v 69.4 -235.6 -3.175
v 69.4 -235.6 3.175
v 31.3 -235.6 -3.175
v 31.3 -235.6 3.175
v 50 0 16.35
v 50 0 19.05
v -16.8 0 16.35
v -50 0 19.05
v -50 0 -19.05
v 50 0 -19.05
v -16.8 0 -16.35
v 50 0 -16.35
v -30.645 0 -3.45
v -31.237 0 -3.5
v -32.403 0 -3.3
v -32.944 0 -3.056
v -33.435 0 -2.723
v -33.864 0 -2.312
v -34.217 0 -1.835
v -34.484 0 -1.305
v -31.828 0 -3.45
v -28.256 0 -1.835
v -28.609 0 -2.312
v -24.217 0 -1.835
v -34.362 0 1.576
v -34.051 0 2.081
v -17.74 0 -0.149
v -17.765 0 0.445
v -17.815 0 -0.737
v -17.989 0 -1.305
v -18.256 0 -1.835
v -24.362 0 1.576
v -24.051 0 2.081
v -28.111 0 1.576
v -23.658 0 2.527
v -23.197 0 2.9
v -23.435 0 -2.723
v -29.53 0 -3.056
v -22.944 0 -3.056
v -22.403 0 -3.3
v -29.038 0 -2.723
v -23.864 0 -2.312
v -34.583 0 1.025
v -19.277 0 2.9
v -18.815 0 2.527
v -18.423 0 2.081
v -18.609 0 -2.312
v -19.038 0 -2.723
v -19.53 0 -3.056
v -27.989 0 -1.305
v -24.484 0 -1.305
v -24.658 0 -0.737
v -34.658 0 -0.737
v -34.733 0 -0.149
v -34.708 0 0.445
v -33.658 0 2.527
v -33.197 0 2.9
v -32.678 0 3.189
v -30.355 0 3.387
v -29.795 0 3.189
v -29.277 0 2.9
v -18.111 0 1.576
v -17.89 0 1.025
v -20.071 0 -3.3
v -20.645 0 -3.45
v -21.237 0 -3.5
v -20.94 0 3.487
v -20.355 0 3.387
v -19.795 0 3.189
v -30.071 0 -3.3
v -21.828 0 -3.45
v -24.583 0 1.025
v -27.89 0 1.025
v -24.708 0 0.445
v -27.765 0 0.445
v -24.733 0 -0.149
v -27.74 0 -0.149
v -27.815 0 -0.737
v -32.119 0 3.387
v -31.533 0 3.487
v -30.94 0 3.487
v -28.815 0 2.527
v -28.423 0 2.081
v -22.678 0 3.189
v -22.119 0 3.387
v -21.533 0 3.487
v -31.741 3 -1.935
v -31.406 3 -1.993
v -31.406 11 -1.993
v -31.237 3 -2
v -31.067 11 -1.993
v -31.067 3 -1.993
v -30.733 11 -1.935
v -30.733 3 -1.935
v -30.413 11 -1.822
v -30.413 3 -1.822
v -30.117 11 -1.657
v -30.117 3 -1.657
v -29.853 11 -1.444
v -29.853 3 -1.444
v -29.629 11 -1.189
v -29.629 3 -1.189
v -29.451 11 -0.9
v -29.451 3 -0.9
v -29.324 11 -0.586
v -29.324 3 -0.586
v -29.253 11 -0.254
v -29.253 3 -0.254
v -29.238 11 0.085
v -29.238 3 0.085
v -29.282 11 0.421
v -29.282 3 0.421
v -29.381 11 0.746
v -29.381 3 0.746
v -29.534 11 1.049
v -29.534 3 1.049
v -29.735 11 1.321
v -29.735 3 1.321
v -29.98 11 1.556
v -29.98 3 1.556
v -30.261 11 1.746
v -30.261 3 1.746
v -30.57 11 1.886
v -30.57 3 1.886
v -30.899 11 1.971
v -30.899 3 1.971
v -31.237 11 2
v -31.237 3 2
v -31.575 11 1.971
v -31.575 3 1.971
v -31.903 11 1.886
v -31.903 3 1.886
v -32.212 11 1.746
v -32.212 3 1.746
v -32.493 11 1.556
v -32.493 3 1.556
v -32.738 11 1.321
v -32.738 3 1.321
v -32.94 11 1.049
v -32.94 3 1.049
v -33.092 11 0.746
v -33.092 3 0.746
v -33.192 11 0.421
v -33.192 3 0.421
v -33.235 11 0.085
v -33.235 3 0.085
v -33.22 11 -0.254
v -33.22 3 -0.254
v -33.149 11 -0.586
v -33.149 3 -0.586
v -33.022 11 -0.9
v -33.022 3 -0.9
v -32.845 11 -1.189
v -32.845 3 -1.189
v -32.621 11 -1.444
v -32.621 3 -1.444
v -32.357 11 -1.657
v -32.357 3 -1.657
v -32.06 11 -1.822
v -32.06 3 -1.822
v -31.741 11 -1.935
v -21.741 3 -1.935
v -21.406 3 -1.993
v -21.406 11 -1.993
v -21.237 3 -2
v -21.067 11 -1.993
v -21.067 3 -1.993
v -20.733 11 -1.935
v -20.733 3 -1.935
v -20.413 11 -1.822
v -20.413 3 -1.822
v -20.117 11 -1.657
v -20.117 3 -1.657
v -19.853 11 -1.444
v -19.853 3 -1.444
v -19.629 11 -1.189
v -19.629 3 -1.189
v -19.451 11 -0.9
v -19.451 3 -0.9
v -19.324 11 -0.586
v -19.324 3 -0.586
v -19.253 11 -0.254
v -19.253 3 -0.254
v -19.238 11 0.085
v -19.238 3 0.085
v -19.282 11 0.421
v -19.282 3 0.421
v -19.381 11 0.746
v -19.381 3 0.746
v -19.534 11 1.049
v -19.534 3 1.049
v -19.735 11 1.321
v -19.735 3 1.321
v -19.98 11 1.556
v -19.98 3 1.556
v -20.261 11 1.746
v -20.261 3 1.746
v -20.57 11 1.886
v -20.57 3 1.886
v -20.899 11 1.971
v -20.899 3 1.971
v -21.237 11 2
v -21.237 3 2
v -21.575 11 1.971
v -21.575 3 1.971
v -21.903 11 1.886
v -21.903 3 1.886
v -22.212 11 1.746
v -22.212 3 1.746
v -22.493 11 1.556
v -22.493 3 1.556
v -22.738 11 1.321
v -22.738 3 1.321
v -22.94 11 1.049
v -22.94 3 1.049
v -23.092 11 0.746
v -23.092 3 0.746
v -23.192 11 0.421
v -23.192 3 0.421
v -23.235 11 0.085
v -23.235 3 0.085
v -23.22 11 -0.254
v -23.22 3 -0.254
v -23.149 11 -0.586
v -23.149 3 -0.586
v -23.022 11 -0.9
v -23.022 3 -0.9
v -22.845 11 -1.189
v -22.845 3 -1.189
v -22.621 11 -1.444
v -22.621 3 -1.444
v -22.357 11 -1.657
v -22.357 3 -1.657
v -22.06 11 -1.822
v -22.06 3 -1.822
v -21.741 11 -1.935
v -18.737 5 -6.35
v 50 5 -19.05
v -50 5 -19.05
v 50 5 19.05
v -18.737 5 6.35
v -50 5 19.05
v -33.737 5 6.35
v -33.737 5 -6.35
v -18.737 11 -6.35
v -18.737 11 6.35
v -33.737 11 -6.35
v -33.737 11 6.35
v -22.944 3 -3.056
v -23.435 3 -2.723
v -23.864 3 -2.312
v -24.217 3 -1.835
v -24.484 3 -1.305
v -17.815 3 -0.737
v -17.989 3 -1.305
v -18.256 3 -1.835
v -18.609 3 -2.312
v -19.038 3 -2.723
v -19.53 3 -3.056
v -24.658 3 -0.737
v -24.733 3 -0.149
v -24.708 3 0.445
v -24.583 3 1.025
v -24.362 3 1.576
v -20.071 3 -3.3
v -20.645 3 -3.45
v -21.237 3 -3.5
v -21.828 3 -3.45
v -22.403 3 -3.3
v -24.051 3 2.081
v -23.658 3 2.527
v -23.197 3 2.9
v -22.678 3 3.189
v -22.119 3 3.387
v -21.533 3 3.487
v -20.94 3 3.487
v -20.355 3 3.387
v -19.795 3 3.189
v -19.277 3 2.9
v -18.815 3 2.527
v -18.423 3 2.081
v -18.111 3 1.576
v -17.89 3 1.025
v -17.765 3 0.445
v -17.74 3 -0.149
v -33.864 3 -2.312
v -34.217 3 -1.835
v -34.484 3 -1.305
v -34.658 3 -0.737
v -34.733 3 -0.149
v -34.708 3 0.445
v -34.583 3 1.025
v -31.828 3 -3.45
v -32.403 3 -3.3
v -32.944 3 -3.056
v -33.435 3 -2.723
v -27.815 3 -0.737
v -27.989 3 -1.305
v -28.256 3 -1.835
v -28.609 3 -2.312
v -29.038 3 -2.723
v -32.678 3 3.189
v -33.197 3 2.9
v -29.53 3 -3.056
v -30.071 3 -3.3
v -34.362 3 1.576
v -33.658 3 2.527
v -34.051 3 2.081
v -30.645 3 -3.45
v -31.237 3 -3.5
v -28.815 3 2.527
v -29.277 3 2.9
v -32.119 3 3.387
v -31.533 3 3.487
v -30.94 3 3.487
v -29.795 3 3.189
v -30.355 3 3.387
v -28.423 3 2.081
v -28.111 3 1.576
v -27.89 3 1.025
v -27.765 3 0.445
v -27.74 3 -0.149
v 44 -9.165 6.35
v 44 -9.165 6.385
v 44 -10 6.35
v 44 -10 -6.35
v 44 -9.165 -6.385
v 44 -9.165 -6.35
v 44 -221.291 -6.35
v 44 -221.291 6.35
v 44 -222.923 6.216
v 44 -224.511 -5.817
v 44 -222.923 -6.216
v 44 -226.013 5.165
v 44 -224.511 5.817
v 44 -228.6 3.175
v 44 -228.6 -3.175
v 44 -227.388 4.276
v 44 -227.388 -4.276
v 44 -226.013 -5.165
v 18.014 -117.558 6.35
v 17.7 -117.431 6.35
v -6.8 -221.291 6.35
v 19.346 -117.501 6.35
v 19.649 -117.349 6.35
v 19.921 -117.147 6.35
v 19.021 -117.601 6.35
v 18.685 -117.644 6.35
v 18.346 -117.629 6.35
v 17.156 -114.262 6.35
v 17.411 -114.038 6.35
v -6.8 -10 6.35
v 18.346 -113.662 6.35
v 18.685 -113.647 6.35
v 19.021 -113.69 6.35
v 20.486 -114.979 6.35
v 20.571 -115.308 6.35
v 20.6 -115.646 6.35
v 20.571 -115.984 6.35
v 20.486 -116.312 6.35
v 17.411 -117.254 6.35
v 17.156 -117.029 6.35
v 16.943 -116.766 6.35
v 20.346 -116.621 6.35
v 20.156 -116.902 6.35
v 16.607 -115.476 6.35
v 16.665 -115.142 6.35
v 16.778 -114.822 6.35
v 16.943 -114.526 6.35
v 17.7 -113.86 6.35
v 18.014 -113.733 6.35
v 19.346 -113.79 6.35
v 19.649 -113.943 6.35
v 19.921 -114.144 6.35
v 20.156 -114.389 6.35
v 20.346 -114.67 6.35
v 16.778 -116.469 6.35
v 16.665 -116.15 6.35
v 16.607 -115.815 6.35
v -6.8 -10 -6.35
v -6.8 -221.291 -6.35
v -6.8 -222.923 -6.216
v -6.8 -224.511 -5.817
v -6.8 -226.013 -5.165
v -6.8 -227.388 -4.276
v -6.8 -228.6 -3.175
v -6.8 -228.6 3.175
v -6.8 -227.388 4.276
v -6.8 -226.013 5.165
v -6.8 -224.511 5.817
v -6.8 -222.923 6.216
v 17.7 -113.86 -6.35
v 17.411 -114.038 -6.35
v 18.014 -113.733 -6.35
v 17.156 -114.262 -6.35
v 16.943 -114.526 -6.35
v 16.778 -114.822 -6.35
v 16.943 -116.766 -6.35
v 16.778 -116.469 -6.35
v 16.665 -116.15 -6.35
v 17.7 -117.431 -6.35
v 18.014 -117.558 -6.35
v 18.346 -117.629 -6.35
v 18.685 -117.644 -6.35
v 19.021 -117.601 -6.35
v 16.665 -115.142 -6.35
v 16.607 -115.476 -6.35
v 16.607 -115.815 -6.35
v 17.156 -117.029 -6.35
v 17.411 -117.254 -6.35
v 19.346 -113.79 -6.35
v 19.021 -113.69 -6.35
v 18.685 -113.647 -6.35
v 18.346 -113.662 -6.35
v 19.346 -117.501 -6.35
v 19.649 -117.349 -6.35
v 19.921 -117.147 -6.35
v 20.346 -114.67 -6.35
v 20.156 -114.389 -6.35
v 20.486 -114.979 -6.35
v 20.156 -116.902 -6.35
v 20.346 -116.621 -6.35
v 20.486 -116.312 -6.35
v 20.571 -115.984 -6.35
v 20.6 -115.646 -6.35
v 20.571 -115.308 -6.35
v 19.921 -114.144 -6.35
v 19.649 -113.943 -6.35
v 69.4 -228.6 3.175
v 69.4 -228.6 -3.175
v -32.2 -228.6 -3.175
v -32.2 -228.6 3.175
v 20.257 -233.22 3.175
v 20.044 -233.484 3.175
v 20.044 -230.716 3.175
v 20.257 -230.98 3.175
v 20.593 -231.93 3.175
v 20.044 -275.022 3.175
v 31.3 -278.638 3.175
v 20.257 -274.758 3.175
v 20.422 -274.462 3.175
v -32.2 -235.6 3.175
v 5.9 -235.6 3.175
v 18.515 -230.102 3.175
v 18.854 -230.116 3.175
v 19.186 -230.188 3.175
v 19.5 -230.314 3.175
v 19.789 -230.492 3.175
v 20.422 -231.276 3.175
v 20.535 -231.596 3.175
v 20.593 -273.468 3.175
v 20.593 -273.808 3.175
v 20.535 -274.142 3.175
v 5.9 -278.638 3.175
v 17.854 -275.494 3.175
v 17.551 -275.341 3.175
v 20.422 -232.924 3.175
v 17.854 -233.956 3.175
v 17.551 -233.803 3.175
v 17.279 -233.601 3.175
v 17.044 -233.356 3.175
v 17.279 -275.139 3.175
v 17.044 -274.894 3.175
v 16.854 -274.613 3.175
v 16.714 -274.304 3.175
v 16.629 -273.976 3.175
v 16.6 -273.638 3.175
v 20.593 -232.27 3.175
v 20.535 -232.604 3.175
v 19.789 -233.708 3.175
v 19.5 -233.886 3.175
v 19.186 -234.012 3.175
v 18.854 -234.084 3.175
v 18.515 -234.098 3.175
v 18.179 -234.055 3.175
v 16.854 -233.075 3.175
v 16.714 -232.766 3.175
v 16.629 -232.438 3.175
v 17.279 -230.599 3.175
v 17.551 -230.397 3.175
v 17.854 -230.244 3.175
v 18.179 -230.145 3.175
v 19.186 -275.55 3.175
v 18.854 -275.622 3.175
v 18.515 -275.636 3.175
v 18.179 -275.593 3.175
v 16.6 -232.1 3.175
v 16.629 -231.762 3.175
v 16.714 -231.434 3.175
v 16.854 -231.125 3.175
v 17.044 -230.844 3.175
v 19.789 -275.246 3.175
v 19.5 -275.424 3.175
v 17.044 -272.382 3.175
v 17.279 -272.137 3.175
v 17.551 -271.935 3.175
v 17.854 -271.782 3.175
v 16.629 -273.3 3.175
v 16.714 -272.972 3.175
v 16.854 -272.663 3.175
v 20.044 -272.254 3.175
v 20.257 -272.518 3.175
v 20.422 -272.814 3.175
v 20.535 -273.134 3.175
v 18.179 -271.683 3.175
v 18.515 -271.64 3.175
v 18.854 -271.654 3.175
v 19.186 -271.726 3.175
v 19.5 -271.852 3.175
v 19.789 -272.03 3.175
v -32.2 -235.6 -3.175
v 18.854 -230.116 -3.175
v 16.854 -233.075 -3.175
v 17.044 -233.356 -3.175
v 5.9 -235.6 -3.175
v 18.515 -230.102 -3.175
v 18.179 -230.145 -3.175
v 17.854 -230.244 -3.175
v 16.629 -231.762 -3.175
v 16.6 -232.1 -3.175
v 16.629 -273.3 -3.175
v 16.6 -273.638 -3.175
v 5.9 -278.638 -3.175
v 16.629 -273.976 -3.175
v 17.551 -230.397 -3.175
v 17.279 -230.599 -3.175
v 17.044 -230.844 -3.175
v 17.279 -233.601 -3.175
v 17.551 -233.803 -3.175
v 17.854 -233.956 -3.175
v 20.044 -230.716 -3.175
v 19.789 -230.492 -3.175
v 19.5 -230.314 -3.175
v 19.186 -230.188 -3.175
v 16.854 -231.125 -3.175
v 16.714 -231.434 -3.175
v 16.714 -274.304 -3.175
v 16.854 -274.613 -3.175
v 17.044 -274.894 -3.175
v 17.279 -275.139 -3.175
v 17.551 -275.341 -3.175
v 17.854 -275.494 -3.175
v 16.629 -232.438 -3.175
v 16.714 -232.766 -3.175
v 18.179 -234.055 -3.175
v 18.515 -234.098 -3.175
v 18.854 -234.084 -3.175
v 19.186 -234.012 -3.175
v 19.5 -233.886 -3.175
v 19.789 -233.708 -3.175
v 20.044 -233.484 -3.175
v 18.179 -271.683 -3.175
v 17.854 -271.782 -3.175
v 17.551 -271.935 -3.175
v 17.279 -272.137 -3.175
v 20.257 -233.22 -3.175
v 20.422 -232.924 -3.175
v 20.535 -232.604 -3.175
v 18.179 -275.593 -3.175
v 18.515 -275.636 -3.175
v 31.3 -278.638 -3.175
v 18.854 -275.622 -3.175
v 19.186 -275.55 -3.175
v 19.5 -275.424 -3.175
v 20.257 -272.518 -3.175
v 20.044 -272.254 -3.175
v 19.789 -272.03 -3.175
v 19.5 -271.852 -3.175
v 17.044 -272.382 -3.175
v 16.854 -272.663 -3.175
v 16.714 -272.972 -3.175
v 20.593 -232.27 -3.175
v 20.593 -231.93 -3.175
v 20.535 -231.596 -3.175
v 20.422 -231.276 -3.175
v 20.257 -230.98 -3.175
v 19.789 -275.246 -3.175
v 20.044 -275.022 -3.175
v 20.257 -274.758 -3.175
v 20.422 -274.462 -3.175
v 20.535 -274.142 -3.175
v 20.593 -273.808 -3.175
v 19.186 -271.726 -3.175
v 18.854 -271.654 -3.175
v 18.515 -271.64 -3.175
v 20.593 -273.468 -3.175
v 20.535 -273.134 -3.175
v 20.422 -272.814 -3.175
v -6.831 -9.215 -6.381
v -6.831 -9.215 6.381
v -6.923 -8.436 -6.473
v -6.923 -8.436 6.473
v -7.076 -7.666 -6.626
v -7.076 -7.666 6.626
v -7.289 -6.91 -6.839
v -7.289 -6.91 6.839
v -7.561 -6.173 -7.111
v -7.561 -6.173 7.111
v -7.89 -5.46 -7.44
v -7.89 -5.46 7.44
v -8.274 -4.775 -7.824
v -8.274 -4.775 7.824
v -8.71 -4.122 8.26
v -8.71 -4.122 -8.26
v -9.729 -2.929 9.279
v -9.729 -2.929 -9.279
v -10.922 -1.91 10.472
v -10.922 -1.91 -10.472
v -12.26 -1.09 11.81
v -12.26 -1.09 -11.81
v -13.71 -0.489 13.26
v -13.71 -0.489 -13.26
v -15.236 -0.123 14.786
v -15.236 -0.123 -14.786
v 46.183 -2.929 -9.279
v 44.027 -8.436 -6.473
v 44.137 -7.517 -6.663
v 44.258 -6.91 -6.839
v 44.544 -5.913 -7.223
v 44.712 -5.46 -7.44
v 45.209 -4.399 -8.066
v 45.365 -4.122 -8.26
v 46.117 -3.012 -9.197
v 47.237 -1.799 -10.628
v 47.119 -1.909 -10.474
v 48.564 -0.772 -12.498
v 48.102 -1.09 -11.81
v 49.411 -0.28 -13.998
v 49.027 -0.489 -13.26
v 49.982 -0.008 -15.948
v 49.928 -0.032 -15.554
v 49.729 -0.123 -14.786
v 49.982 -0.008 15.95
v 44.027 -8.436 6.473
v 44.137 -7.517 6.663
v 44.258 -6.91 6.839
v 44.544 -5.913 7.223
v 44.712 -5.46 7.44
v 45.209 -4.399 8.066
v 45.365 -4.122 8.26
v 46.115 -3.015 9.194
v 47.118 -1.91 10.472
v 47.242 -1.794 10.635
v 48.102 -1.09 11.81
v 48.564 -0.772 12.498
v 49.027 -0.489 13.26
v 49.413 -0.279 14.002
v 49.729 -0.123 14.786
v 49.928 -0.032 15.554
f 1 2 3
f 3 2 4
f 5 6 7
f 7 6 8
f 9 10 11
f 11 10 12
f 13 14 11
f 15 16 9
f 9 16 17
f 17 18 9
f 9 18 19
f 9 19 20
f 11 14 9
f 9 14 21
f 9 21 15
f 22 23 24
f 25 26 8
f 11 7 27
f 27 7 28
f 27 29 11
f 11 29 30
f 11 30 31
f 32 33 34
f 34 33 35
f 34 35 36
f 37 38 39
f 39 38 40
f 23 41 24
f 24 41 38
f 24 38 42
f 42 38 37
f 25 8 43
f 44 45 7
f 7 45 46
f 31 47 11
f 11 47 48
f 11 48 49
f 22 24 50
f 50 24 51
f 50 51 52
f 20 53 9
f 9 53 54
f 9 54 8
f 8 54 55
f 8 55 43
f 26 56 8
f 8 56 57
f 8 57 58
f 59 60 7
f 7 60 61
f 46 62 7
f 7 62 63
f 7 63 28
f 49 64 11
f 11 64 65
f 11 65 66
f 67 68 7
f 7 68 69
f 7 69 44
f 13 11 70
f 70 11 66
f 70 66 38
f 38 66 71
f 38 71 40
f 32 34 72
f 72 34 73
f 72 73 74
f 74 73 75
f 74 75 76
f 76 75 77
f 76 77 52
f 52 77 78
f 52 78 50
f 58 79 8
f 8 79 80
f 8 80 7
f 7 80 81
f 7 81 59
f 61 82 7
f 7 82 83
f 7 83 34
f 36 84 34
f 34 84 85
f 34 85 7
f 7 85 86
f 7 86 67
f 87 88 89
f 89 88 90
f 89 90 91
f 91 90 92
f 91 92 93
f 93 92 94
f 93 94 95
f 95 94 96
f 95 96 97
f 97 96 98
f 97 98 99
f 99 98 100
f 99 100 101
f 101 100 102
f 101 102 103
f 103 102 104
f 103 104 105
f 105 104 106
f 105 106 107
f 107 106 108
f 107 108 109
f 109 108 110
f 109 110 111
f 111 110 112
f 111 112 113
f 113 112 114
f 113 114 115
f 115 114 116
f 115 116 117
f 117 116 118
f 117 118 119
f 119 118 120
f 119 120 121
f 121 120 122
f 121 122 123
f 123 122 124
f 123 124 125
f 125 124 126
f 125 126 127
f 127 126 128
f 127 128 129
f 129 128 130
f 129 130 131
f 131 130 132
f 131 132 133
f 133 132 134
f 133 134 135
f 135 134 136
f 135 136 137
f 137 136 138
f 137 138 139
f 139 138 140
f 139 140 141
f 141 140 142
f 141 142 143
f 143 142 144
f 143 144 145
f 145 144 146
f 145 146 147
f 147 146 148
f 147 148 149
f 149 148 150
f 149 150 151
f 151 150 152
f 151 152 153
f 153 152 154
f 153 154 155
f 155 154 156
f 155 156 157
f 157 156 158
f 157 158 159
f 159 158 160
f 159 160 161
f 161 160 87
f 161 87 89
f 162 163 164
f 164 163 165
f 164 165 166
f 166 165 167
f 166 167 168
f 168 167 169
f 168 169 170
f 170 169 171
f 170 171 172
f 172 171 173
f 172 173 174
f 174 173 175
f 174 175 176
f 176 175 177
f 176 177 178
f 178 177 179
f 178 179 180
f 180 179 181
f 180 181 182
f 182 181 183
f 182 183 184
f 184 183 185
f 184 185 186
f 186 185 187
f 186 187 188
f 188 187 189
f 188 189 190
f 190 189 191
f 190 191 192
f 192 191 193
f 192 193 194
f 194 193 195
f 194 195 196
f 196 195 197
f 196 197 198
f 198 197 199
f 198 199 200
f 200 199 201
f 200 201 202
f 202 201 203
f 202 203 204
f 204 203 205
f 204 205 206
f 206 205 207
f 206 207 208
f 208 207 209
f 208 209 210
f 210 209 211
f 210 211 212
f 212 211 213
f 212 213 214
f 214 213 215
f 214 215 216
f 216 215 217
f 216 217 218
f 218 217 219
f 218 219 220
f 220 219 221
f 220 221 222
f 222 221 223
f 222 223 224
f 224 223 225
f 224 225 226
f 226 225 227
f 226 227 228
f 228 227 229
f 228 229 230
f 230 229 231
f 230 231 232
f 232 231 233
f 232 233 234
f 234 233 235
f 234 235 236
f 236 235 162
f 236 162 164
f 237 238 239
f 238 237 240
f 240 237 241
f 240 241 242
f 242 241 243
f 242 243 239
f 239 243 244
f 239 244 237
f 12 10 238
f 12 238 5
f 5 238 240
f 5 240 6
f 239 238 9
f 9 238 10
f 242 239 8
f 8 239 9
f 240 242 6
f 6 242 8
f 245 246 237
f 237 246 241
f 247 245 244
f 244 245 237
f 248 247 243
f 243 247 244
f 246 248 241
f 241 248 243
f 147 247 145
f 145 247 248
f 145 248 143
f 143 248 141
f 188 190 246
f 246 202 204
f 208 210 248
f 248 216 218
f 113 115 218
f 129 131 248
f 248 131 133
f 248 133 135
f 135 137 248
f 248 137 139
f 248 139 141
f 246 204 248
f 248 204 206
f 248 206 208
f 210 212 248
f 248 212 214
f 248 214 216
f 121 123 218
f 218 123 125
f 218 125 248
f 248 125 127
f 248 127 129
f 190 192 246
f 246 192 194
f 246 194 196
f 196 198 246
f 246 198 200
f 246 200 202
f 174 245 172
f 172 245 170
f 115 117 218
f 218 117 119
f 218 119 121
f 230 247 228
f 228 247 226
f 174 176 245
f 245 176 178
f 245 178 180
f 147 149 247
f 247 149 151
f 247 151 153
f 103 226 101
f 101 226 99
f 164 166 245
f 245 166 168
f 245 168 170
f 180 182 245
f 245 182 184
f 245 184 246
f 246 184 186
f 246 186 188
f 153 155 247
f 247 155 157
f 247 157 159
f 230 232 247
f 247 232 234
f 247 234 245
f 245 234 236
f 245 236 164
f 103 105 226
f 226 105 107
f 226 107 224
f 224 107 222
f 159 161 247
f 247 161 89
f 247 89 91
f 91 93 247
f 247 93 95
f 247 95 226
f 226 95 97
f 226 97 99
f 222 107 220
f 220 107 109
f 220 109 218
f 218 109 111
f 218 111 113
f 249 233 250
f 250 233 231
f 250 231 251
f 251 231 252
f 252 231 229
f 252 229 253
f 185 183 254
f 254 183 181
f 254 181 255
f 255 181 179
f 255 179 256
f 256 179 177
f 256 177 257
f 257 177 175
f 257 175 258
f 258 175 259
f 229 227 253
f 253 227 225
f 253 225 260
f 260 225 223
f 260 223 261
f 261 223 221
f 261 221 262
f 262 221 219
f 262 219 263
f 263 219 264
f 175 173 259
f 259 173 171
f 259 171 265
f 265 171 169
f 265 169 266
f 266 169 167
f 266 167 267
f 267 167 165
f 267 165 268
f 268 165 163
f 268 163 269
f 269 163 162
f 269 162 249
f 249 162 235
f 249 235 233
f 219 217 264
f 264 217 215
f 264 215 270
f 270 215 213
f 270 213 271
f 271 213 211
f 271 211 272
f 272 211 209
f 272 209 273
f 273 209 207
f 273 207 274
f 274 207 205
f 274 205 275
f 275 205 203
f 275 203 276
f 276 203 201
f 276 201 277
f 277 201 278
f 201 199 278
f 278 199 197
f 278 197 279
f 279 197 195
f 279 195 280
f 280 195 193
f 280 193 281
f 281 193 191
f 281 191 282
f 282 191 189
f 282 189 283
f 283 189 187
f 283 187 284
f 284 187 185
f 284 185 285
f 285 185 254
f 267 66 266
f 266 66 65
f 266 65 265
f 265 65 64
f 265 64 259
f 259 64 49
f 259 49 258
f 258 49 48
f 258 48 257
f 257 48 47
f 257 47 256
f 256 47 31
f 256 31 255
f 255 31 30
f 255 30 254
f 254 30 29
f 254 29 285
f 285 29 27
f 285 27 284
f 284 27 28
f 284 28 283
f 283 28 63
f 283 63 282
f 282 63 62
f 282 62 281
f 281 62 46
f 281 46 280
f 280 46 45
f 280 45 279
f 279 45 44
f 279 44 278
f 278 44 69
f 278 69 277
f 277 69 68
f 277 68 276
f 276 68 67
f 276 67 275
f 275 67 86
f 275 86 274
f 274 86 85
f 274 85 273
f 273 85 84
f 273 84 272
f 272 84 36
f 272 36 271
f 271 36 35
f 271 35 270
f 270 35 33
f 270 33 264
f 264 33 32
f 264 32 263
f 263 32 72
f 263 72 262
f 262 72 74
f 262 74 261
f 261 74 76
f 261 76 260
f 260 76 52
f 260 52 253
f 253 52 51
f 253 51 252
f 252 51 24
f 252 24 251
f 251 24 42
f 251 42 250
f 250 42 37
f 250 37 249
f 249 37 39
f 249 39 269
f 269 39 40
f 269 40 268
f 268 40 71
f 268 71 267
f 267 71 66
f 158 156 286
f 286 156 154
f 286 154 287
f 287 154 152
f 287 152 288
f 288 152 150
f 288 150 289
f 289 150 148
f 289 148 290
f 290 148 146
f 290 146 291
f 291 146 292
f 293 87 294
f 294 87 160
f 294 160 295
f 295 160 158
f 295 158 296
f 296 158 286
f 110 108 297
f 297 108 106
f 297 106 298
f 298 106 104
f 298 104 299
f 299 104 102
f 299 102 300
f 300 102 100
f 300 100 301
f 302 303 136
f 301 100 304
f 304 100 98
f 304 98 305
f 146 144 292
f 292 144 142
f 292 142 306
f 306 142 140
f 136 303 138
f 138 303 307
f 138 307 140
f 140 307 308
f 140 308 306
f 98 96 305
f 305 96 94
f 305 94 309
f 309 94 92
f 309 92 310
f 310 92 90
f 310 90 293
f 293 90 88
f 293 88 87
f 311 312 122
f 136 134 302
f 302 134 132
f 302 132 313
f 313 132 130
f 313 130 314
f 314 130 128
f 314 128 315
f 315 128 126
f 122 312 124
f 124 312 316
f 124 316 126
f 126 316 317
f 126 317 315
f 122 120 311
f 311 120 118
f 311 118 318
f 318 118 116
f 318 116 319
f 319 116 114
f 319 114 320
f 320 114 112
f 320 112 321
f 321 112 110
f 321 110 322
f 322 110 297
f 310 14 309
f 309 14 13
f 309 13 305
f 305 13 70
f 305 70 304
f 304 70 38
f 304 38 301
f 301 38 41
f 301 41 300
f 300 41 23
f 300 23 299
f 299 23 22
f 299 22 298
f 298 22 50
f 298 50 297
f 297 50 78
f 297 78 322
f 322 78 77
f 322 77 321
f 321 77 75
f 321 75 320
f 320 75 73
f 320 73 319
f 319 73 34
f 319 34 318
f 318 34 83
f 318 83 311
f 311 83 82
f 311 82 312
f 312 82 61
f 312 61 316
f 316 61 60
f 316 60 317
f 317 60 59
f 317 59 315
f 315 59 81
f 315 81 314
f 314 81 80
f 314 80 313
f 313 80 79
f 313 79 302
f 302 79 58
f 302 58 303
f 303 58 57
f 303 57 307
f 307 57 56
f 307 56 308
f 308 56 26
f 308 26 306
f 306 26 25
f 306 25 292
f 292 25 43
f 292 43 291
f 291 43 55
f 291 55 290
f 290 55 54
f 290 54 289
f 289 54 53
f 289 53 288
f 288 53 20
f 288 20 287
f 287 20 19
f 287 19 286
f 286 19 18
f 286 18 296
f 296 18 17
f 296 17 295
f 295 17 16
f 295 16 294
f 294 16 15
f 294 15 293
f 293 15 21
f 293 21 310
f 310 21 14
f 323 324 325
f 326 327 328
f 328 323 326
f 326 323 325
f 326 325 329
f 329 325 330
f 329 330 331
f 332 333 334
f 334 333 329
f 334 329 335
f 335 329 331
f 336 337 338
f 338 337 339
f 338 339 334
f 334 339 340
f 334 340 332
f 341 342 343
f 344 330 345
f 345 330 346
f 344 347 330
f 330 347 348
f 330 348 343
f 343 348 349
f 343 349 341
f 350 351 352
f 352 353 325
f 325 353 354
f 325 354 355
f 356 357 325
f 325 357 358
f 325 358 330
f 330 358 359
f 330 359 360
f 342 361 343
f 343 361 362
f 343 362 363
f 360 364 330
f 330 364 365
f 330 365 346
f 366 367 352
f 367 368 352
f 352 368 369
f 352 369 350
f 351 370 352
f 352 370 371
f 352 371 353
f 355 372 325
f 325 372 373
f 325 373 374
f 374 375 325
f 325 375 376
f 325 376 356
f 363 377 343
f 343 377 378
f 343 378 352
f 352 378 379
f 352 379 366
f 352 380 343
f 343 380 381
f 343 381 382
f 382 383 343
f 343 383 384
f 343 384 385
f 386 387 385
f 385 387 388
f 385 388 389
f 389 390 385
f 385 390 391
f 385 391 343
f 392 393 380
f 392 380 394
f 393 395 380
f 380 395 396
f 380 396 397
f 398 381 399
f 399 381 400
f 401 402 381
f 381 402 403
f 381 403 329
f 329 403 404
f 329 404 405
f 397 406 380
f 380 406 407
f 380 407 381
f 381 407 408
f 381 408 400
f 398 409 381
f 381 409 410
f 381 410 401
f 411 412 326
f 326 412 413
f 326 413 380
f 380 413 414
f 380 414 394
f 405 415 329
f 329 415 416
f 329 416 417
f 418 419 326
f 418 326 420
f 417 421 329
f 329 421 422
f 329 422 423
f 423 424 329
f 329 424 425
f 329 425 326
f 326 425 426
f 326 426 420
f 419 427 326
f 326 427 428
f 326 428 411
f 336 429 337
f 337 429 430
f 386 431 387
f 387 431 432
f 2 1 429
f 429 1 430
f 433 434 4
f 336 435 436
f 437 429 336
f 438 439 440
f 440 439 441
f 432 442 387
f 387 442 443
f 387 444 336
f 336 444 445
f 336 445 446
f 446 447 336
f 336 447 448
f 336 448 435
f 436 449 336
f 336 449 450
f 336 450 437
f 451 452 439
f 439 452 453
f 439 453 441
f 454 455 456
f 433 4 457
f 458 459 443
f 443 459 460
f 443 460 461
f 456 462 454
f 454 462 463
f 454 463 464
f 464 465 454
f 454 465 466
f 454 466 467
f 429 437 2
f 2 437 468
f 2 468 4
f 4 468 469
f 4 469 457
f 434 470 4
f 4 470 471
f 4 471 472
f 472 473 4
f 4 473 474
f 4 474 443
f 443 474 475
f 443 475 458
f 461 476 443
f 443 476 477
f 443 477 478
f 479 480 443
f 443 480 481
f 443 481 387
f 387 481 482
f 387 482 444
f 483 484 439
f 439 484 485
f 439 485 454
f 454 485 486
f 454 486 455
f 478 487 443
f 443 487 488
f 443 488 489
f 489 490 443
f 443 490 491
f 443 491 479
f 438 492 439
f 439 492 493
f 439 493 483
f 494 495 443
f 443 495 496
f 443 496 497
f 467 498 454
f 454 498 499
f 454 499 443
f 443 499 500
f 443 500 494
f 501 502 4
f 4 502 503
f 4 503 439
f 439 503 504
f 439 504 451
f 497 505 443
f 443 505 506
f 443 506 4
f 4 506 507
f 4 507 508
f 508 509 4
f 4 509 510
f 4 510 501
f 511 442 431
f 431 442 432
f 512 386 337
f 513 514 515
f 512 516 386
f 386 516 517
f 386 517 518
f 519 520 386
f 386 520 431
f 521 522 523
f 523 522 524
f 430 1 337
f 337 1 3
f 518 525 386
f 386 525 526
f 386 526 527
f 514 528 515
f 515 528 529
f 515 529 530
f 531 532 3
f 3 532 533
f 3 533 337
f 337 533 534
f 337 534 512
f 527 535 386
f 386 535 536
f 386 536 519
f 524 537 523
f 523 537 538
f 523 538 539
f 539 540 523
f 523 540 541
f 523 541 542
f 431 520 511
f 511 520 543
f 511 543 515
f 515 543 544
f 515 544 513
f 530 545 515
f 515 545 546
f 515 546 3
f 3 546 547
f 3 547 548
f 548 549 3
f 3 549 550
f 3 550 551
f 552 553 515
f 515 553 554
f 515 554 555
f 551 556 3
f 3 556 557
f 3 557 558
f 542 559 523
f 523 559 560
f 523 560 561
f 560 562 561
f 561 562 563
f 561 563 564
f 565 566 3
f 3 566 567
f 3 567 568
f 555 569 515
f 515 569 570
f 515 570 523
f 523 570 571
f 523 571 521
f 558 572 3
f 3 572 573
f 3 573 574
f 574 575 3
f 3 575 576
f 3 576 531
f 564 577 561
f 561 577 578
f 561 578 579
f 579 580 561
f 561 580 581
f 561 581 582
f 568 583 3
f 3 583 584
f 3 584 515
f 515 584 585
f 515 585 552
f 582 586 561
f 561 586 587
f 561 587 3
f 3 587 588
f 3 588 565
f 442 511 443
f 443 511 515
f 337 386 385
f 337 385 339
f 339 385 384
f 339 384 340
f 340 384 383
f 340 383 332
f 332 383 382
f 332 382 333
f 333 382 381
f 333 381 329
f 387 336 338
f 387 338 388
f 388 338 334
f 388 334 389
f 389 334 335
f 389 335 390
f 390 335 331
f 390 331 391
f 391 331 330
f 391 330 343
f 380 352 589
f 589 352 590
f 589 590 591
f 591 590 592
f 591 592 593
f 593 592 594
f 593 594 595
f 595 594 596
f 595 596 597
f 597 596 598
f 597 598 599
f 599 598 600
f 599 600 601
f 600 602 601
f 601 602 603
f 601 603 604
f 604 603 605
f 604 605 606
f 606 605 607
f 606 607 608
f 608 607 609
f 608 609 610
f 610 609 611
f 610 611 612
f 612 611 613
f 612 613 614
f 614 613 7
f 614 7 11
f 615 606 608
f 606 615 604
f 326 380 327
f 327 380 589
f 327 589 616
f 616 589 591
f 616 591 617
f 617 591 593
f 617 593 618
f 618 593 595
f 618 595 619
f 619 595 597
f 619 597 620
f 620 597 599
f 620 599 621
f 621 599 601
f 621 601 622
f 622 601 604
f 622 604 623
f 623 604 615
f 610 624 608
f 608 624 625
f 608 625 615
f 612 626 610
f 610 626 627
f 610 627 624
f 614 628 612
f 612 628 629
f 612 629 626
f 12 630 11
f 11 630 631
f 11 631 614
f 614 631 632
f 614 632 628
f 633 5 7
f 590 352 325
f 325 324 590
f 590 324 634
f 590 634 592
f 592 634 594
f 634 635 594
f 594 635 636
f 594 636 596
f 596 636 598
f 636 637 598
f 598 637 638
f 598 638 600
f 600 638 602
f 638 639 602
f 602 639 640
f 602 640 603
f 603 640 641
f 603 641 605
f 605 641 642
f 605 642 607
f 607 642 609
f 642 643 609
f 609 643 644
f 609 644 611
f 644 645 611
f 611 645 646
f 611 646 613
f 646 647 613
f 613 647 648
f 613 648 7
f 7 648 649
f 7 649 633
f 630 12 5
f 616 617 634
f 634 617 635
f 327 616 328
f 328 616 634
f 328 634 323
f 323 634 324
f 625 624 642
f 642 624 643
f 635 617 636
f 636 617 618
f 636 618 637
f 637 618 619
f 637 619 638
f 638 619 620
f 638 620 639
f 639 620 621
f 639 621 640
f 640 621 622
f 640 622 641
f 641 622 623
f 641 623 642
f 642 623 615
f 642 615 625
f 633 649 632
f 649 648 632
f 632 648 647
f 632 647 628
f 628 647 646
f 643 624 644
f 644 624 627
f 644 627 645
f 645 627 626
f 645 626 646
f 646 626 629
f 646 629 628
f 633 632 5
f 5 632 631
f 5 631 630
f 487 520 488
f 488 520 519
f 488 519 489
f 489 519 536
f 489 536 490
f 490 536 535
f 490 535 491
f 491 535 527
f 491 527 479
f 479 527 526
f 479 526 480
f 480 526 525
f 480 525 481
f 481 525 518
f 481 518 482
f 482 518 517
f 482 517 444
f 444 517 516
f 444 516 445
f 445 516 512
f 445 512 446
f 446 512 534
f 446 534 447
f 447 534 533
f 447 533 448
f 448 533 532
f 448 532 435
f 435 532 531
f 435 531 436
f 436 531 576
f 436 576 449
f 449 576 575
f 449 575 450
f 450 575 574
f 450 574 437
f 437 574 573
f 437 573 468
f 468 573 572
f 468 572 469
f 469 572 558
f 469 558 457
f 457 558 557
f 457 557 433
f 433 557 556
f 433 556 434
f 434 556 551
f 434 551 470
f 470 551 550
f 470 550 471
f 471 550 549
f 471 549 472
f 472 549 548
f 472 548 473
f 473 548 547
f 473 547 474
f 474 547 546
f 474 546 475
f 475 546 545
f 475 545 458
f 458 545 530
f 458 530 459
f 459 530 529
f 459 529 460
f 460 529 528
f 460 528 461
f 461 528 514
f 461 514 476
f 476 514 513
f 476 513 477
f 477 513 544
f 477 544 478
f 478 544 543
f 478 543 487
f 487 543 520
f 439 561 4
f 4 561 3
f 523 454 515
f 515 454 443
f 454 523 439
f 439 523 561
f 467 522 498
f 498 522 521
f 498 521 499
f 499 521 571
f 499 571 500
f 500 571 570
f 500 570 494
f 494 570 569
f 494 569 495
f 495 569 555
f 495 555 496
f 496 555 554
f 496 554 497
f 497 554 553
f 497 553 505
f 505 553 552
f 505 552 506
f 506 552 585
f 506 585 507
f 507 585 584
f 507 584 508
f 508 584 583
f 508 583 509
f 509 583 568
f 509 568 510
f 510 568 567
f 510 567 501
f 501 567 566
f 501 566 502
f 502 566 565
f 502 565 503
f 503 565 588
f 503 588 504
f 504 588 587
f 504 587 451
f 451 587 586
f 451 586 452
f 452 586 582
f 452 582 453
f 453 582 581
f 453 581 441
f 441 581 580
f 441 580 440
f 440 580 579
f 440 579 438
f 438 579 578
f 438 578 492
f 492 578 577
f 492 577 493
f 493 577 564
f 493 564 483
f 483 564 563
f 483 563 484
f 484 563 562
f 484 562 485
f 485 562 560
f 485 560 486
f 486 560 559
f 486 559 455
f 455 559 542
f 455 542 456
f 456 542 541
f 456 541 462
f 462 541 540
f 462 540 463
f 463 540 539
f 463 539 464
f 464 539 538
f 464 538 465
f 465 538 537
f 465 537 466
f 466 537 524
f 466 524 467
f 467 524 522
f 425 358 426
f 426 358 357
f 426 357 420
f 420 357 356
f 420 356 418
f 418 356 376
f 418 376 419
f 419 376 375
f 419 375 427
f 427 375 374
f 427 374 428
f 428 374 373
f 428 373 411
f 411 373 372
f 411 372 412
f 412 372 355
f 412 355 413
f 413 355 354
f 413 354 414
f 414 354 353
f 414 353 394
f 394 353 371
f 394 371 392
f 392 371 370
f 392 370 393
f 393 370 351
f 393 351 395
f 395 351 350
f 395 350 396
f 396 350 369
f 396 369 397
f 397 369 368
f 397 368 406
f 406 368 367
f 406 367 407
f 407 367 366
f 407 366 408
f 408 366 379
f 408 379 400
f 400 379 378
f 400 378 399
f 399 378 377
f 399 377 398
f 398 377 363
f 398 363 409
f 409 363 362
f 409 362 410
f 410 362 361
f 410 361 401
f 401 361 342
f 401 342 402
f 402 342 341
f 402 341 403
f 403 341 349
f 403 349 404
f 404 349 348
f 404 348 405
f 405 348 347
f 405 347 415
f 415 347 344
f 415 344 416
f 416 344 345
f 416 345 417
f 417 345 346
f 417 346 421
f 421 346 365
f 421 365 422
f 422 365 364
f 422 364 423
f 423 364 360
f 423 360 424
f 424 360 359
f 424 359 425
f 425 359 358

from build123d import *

# Parameters (mm, degrees)
BOSS_EXTRUDE1_DEPTH         = 5
BOSS_EXTRUDE2_DEPTH         = 6
TAP_DRILL_FOR_M4X0_7_TAP1_D = 3.3
SKETCH3_R                   = 2.000000000000003
CUT_EXTRUDE1_DEPTH          = 55.62510869554404
SKETCH12_R                  = 3.5
CUT_EXTRUDE2_DEPTH          = 3
BOSS_EXTRUDE3_DEPTH         = 228.6
SKETCH14_W                  = 101.6
SKETCH14_H                  = 6.35
BOSS_EXTRUDE4_DEPTH         = 7
FILLET1_R                   = 10
FILLET2_R                   = 10
FILLET3_R                   = 10
SKETCH15_R                  = 2.0000000000000067
CUT_EXTRUDE3_DEPTH          = 247.61238943937914
SKETCH16_W                  = 25.4
SKETCH16_H                  = 6.35
BOSS_EXTRUDE5_DEPTH         = 43.038
SKETCH17_R                  = 2.0000000000000036
CUT_EXTRUDE4_DEPTH          = 289.00945413128363
SKETCH18_R                  = 2.0000000000000036
CUT_EXTRUDE5_DEPTH          = 289.2718422669824


with BuildPart() as part:
    # Sketch1 → Boss-Extrude1 (new body)
    with BuildSketch(Plane(origin=(0, 0, 0), x_dir=(1, 0, 0), z_dir=(0, 1, 0))):
        Polygon((-49.99999999999999, 19.050000000000004), (50.00000000000001, 19.050000000000004), (50.000000000000014, -19.049999999999997), (-49.99999999999999, -19.049999999999997), align=None)
    extrude(amount=BOSS_EXTRUDE1_DEPTH)

    # Sketch2 → Boss-Extrude2 (add)
    with BuildSketch(Plane(origin=(0, 5, 0), x_dir=(1, 0, 0), z_dir=(0, 1, 0))):
        Polygon((-33.73664574389268, 6.349999999999993), (-18.736645743892684, 6.349999999999995), (-18.73664574389268, -6.350000000000003), (-33.73664574389268, -6.350000000000006), align=None)
    extrude(amount=BOSS_EXTRUDE2_DEPTH)

    # Tap Drill for M4x0.7 Tap1 (through all)
    with Locations(Plane(origin=(0, 11, 0), x_dir=(1, 0, 0), z_dir=(0, 1, 0))):
        with Locations((-31.236645744, 0), (-21.236645744, 0)):
            Hole(TAP_DRILL_FOR_M4X0_7_TAP1_D / 2)

    # Sketch3 → Cut-Extrude1 (cut, through all)
    with BuildSketch(Plane(origin=(0, 11, 0), x_dir=(1, 0, 0), z_dir=(0, 1, 0))):
        with Locations(Location((-21.236645743892684, 0, 0), (0, 0, 270))):
            Circle(SKETCH3_R)
        with Locations(Location((-31.23664574389268, 0, 0), (0, 0, 270))):
            Circle(SKETCH3_R)
    extrude(amount=-CUT_EXTRUDE1_DEPTH, mode=Mode.SUBTRACT)

    # Sketch12 → Cut-Extrude2 (cut)
    with BuildSketch(Plane.XZ):
        with Locations(Location((-31.23664574389268, 0, 0), (0, 0, 270))):
            Circle(SKETCH12_R)
        with Locations(Location((-21.236645743892684, 0, 0), (0, 0, 270))):
            Circle(SKETCH12_R)
    extrude(amount=-CUT_EXTRUDE2_DEPTH, mode=Mode.SUBTRACT)

    # Sketch13 → Boss-Extrude3 (add)
    with BuildSketch(Plane.XZ):
        Polygon((-6.799999999999993, 6.349999999999998), (44.00000000000001, 6.349999999999998), (44.00000000000001, -6.350000000000001), (-6.799999999999991, -6.350000000000001), align=None)
    extrude(amount=BOSS_EXTRUDE3_DEPTH)

    # Sketch14 → Boss-Extrude4 (add)
    with BuildSketch(Plane.XZ.offset(228.6)):
        with Locations((18.60000000000002, 2.89e-15)):
            Rectangle(SKETCH14_W, SKETCH14_H)
    extrude(amount=BOSS_EXTRUDE4_DEPTH)

    # Fillet1
    # the kernel refuses this fillet: 10 mm, written as the material it takes off along each edge
    with BuildSketch(Plane(origin=(62.27213982406002, -228.6, -6.350000000000001), x_dir=(0, 1, 0), z_dir=(-1, 0, 0))) as fillet1_piece_1:
        with BuildLine():
            CenterArc((7.308855929624002, -10), FILLET1_R, 90, 46.9606878980301)
            Line((0, -3.1750000000000007), (-0.14617711859247606, -3.038500000000001))
            ThreePointArc((-0.14617711859247606, -3.038500000000001), (-0.19999999999998863, -1.5875000000000004), (-0.19999999999998863, 0))
            Line((-0.19999999999998863, 0), (0, 0.20000000000000018))
            Line((0, 0.20000000000000018), (7.308855929624002, 0.20000000000000018))
            Line((7.308855929624002, 0.20000000000000018), (7.308855929624002, 0))
        make_face()
    extrude(amount=87.34427964812001, mode=Mode.SUBTRACT)

    # Fillet2
    # the kernel refuses this fillet: 10 mm, written as the material it takes off along each edge
    with BuildSketch(Plane(origin=(-25.07213982406, -228.6, 6.349999999999998), x_dir=(0, 1, 0), z_dir=(1, 0, 0))) as fillet2_piece_1:
        with BuildLine():
            CenterArc((7.308855929624002, -10), FILLET2_R, 90, 46.9606878980301)
            Line((0, -3.1749999999999954), (-0.14617711859247606, -3.038499999999995))
            ThreePointArc((-0.14617711859247606, -3.038499999999995), (-0.19999999999998863, -1.5874999999999977), (-0.19999999999998863, 0))
            Line((-0.19999999999998863, 0), (0, 0.20000000000000018))
            Line((0, 0.20000000000000018), (7.308855929624002, 0.20000000000000018))
            Line((7.308855929624002, 0.20000000000000018), (7.308855929624002, 0))
        make_face()
    extrude(amount=87.34427964812001, mode=Mode.SUBTRACT)

    # Fillet3
    # the kernel refuses this fillet: 10 mm, written as the material it adds along each edge
    with BuildSketch(Plane(origin=(44.00000000000001, 0, 6.349999999999998), x_dir=(1, 0, 0), z_dir=(0, 0, -1))) as fillet3_piece_1:
        with BuildLine():
            CenterArc((10, 9.165151389911683), FILLET3_R, 180, 66.42182152179822)
            Line((0, 9.165151389911683), (-0.20000000000000284, 9.165151389911683))
            Line((-0.20000000000000284, 9.165151389911683), (-0.20000000000000284, 0))
            Line((-0.20000000000000284, 0), (0, -0.2))
            ThreePointArc((0, -0.2), (3.000000000000007, -0.2), (5.920000000000009, -0.18330302779823368))
            Line((5.920000000000009, -0.18330302779823368), (6.000000000000007, 0))
        make_face()
    extrude(amount=12.7)
    with BuildSketch(Plane(origin=(-6.799999999999993, 0, 6.349999999999998), x_dir=(0, 0, 1), z_dir=(1, 0, 0))) as fillet3_piece_2:
        with BuildLine():
            CenterArc((FILLET3_R, FILLET3_R), FILLET3_R, 180, 90)
            Line((-3.55e-15, FILLET3_R), (-FILLET3_R * 0.02, FILLET3_R))
            Line((-FILLET3_R * 0.02, FILLET3_R), (-FILLET3_R * 0.02, -FILLET3_R * 0.02))
            Line((-FILLET3_R * 0.02, -FILLET3_R * 0.02), (FILLET3_R, -FILLET3_R * 0.02))
            Line((FILLET3_R, -FILLET3_R * 0.02), (FILLET3_R, 0))
        make_face()
    extrude(amount=50.8)
    with BuildSketch(Plane(origin=(-6.799999999999991, 0, -6.350000000000001), x_dir=(-1, 0, -1.4e-16), z_dir=(-1.4e-16, 0, 1))) as fillet3_piece_3:
        with BuildLine():
            CenterArc((FILLET3_R, FILLET3_R), FILLET3_R, 180, 90)
            Line((-8.9e-16, FILLET3_R), (-FILLET3_R * 0.02, FILLET3_R))
            Line((-FILLET3_R * 0.02, FILLET3_R), (-FILLET3_R * 0.02, -FILLET3_R * 0.02))
            Line((-FILLET3_R * 0.02, -FILLET3_R * 0.02), (FILLET3_R, -FILLET3_R * 0.02))
            Line((FILLET3_R, -FILLET3_R * 0.02), (FILLET3_R, 0))
        make_face()
    extrude(amount=12.7)
    with BuildSketch(Plane(origin=(44.00000000000001, 0, -6.350000000000001), x_dir=(0, 0, -1), z_dir=(-1, 0, 0))) as fillet3_piece_4:
        with BuildLine():
            CenterArc((FILLET3_R, FILLET3_R), FILLET3_R, 180, 90)
            Line((0, FILLET3_R), (-FILLET3_R * 0.02, FILLET3_R))
            Line((-FILLET3_R * 0.02, FILLET3_R), (-FILLET3_R * 0.02, -FILLET3_R * 0.02))
            Line((-FILLET3_R * 0.02, -FILLET3_R * 0.02), (FILLET3_R, -FILLET3_R * 0.02))
            Line((FILLET3_R, -FILLET3_R * 0.02), (FILLET3_R, 0))
        make_face()
    extrude(amount=50.8)
    with BuildSketch(Plane(origin=(44.00000000000001, 0, 29.262878474779207), x_dir=(1, 0, 0), z_dir=(0, 0, -1))) as fillet3_piece_5a_section:
        with BuildLine():
            CenterArc((10, 9.165151389911683), FILLET3_R, 180, 66.42182152179822)
            Line((0, 9.165151389911683), (-0.20000000000000284, 9.165151389911683))
            Line((-0.20000000000000284, 9.165151389911683), (-0.20000000000000284, 0))
            Line((-0.20000000000000284, 0), (0, -0.2))
            ThreePointArc((0, -0.2), (3.000000000000007, -0.2), (5.920000000000009, -0.18330302779823368))
            Line((5.920000000000009, -0.18330302779823368), (6.000000000000007, 0))
        make_face()
    fillet3_piece_5a = extrude(amount=35.61287847477921, mode=Mode.PRIVATE)
    fillet3_piece_5a = split(fillet3_piece_5a, bisect_by=Plane(origin=(45.551632877410285, -2.2318754420498643, 19.049999999999997), z_dir=(0, 0, -1)), keep=Keep.TOP, mode=Mode.PRIVATE)
    fillet3_piece_5a = split(fillet3_piece_5a, bisect_by=Plane(origin=(45.551632877410285, -2.2318754420498643, 6.349999999999998), z_dir=(0, 0, 1)), keep=Keep.TOP, mode=Mode.PRIVATE)
    with BuildSketch(Plane(origin=(-6.799999999999993, 0, 6.349999999999998), x_dir=(0, 0, 1), z_dir=(1, 0, 0))) as fillet3_piece_5b_section:
        with BuildLine():
            CenterArc((FILLET3_R, FILLET3_R), FILLET3_R, 180, 90)
            Line((-3.55e-15, FILLET3_R), (-FILLET3_R * 0.02, FILLET3_R))
            Line((-FILLET3_R * 0.02, FILLET3_R), (-FILLET3_R * 0.02, -FILLET3_R * 0.02))
            Line((-FILLET3_R * 0.02, -FILLET3_R * 0.02), (FILLET3_R, -FILLET3_R * 0.02))
            Line((FILLET3_R, -FILLET3_R * 0.02), (FILLET3_R, 0))
        make_face()
    fillet3_piece_5b = extrude(amount=75.8, mode=Mode.PRIVATE)
    fillet3_piece_5b = split(fillet3_piece_5b, bisect_by=Plane(origin=(50.000000000000014, -2.2639511426682537, 8.613951142668249), z_dir=(-1, 0, 1.9e-16)), keep=Keep.TOP, mode=Mode.PRIVATE)
    fillet3_piece_5b = split(fillet3_piece_5b, bisect_by=Plane(origin=(44.00000000000001, -2.2639511426682537, 8.613951142668249), z_dir=(1, 0, 0)), keep=Keep.TOP, mode=Mode.PRIVATE)
    fillet3_piece_5 = fillet3_piece_5a & fillet3_piece_5b
    add(fillet3_piece_5)
    with BuildSketch(Plane(origin=(69, 0, -6.350000000000001), x_dir=(0, 0, -1), z_dir=(-1, 0, 0))) as fillet3_piece_6a_section:
        with BuildLine():
            CenterArc((FILLET3_R, FILLET3_R), FILLET3_R, 180, 90)
            Line((0, FILLET3_R), (-FILLET3_R * 0.02, FILLET3_R))
            Line((-FILLET3_R * 0.02, FILLET3_R), (-FILLET3_R * 0.02, -FILLET3_R * 0.02))
            Line((-FILLET3_R * 0.02, -FILLET3_R * 0.02), (FILLET3_R, -FILLET3_R * 0.02))
            Line((FILLET3_R, -FILLET3_R * 0.02), (FILLET3_R, 0))
        make_face()
    fillet3_piece_6a = extrude(amount=75.79999999999998, mode=Mode.PRIVATE)
    fillet3_piece_6a = split(fillet3_piece_6a, bisect_by=Plane(origin=(50.00000000000001, -2.2639511426682555, -8.613951142668254), z_dir=(-1, 0, 1.9e-16)), keep=Keep.TOP, mode=Mode.PRIVATE)
    fillet3_piece_6a = split(fillet3_piece_6a, bisect_by=Plane(origin=(44.00000000000001, -2.2639511426682555, -8.613951142668252), z_dir=(1, 0, 0)), keep=Keep.TOP, mode=Mode.PRIVATE)
    with BuildSketch(Plane(origin=(44.00000000000001, 0, 6.349999999999998), x_dir=(1, 0, 0), z_dir=(0, 0, -1))) as fillet3_piece_6b_section:
        with BuildLine():
            CenterArc((10, 9.165151389911683), FILLET3_R, 180, 66.42182152179822)
            Line((0, 9.165151389911683), (-0.20000000000000284, 9.165151389911683))
            Line((-0.20000000000000284, 9.165151389911683), (-0.20000000000000284, 0))
            Line((-0.20000000000000284, 0), (0, -0.2))
            ThreePointArc((0, -0.2), (3.000000000000007, -0.2), (5.920000000000009, -0.18330302779823368))
            Line((5.920000000000009, -0.18330302779823368), (6.000000000000007, 0))
        make_face()
    fillet3_piece_6b = extrude(amount=35.61287847477921, mode=Mode.PRIVATE)
    fillet3_piece_6b = split(fillet3_piece_6b, bisect_by=Plane(origin=(45.55163287741028, -2.2318754420498657, -19.050000000000004), z_dir=(0, 0, 1)), keep=Keep.TOP, mode=Mode.PRIVATE)
    fillet3_piece_6b = split(fillet3_piece_6b, bisect_by=Plane(origin=(45.551632877410285, -2.2318754420498657, -6.350000000000001), z_dir=(0, 0, -1)), keep=Keep.TOP, mode=Mode.PRIVATE)
    fillet3_piece_6 = fillet3_piece_6a & fillet3_piece_6b
    add(fillet3_piece_6)
    with BuildSketch(Plane(origin=(-6.799999999999991, 0, -6.350000000000001), x_dir=(-1, 0, -1.4e-16), z_dir=(-1.4e-16, 0, 1))) as fillet3_piece_7a_section:
        with BuildLine():
            CenterArc((FILLET3_R, FILLET3_R), FILLET3_R, 180, 90)
            Line((-8.9e-16, FILLET3_R), (-FILLET3_R * 0.02, FILLET3_R))
            Line((-FILLET3_R * 0.02, FILLET3_R), (-FILLET3_R * 0.02, -FILLET3_R * 0.02))
            Line((-FILLET3_R * 0.02, -FILLET3_R * 0.02), (FILLET3_R, -FILLET3_R * 0.02))
            Line((FILLET3_R, -FILLET3_R * 0.02), (FILLET3_R, 0))
        make_face()
    fillet3_piece_7a = extrude(amount=37.699999999999996, mode=Mode.PRIVATE)
    fillet3_piece_7a = split(fillet3_piece_7a, bisect_by=Plane(origin=(-9.063951142668245, -2.2639511426682555, 19.049999999999997), z_dir=(0, 0, -1)), keep=Keep.TOP, mode=Mode.PRIVATE)
    fillet3_piece_7a = split(fillet3_piece_7a, bisect_by=Plane(origin=(-9.063951142668246, -2.2639511426682555, 6.349999999999998), z_dir=(0, 0, 1)), keep=Keep.TOP, mode=Mode.PRIVATE)
    with BuildSketch(Plane(origin=(-31.79999999999999, 0, 6.349999999999998), x_dir=(0, 0, 1), z_dir=(1, 0, 0))) as fillet3_piece_7b_section:
        with BuildLine():
            CenterArc((FILLET3_R, FILLET3_R), FILLET3_R, 180, 90)
            Line((-3.55e-15, FILLET3_R), (-FILLET3_R * 0.02, FILLET3_R))
            Line((-FILLET3_R * 0.02, FILLET3_R), (-FILLET3_R * 0.02, -FILLET3_R * 0.02))
            Line((-FILLET3_R * 0.02, -FILLET3_R * 0.02), (FILLET3_R, -FILLET3_R * 0.02))
            Line((FILLET3_R, -FILLET3_R * 0.02), (FILLET3_R, 0))
        make_face()
    fillet3_piece_7b = extrude(amount=75.8, mode=Mode.PRIVATE)
    fillet3_piece_7b = split(fillet3_piece_7b, bisect_by=Plane(origin=(-6.799999999999993, -2.263951142668253, 8.613951142668249), z_dir=(-1, 0, -1.4e-16)), keep=Keep.TOP, mode=Mode.PRIVATE)
    fillet3_piece_7 = fillet3_piece_7a & fillet3_piece_7b
    add(fillet3_piece_7)
    with BuildSketch(Plane(origin=(-6.799999999999987, 0, -31.349999999999998), x_dir=(-1, 0, -1.4e-16), z_dir=(-1.4e-16, 0, 1))) as fillet3_piece_8a_section:
        with BuildLine():
            CenterArc((FILLET3_R, FILLET3_R), FILLET3_R, 180, 90)
            Line((-8.9e-16, FILLET3_R), (-FILLET3_R * 0.02, FILLET3_R))
            Line((-FILLET3_R * 0.02, FILLET3_R), (-FILLET3_R * 0.02, -FILLET3_R * 0.02))
            Line((-FILLET3_R * 0.02, -FILLET3_R * 0.02), (FILLET3_R, -FILLET3_R * 0.02))
            Line((FILLET3_R, -FILLET3_R * 0.02), (FILLET3_R, 0))
        make_face()
    fillet3_piece_8a = extrude(amount=37.699999999999996, mode=Mode.PRIVATE)
    fillet3_piece_8a = split(fillet3_piece_8a, bisect_by=Plane(origin=(-9.063951142668245, -2.2639511426682524, -19.050000000000004), z_dir=(0, 0, 1)), keep=Keep.TOP, mode=Mode.PRIVATE)
    fillet3_piece_8a = split(fillet3_piece_8a, bisect_by=Plane(origin=(-9.063951142668245, -2.2639511426682524, -6.350000000000001), z_dir=(0, 0, -1)), keep=Keep.TOP, mode=Mode.PRIVATE)
    with BuildSketch(Plane(origin=(44.00000000000001, 0, -6.350000000000001), x_dir=(0, 0, -1), z_dir=(-1, 0, 0))) as fillet3_piece_8b_section:
        with BuildLine():
            CenterArc((FILLET3_R, FILLET3_R), FILLET3_R, 180, 90)
            Line((0, FILLET3_R), (-FILLET3_R * 0.02, FILLET3_R))
            Line((-FILLET3_R * 0.02, FILLET3_R), (-FILLET3_R * 0.02, -FILLET3_R * 0.02))
            Line((-FILLET3_R * 0.02, -FILLET3_R * 0.02), (FILLET3_R, -FILLET3_R * 0.02))
            Line((FILLET3_R, -FILLET3_R * 0.02), (FILLET3_R, 0))
        make_face()
    fillet3_piece_8b = extrude(amount=75.8, mode=Mode.PRIVATE)
    fillet3_piece_8b = split(fillet3_piece_8b, bisect_by=Plane(origin=(-6.799999999999991, -2.263951142668254, -8.613951142668252), z_dir=(-1, 0, -1.4e-16)), keep=Keep.TOP, mode=Mode.PRIVATE)
    fillet3_piece_8 = fillet3_piece_8a & fillet3_piece_8b
    add(fillet3_piece_8)

    # Sketch15 → Cut-Extrude3 (cut, through all)
    with BuildSketch(Plane(origin=(0, 0, -3.174999999999997), x_dir=(-1, 0, 0), z_dir=(0, 0, -1))):
        with Locations((-18.600000000000023, -232.09999999999997)):
            Circle(SKETCH15_R)
    extrude(amount=-CUT_EXTRUDE3_DEPTH, mode=Mode.SUBTRACT)

    # Sketch16 → Boss-Extrude5 (add)
    with BuildSketch(Plane.XZ.offset(235.6)):
        with Locations((18.6, 2.89e-15)):
            Rectangle(SKETCH16_W, SKETCH16_H)
    extrude(amount=BOSS_EXTRUDE5_DEPTH)

    # Sketch17 → Cut-Extrude4 (cut, through all)
    with BuildSketch(Plane(origin=(0, 0, -3.174999999999997), x_dir=(-1, 0, 0), z_dir=(0, 0, -1))):
        with Locations((-18.599999999999998, -273.638)):
            Circle(SKETCH17_R)
    extrude(amount=-CUT_EXTRUDE4_DEPTH, mode=Mode.SUBTRACT)

    # Sketch18 → Cut-Extrude5 (cut, through all)
    with BuildSketch(Plane.XY.offset(6.349999999999998)):
        with Locations((18.599999999999984, -115.64557203518808)):
            Circle(SKETCH18_R)
    extrude(amount=-CUT_EXTRUDE5_DEPTH, mode=Mode.SUBTRACT)


solid = part.part
